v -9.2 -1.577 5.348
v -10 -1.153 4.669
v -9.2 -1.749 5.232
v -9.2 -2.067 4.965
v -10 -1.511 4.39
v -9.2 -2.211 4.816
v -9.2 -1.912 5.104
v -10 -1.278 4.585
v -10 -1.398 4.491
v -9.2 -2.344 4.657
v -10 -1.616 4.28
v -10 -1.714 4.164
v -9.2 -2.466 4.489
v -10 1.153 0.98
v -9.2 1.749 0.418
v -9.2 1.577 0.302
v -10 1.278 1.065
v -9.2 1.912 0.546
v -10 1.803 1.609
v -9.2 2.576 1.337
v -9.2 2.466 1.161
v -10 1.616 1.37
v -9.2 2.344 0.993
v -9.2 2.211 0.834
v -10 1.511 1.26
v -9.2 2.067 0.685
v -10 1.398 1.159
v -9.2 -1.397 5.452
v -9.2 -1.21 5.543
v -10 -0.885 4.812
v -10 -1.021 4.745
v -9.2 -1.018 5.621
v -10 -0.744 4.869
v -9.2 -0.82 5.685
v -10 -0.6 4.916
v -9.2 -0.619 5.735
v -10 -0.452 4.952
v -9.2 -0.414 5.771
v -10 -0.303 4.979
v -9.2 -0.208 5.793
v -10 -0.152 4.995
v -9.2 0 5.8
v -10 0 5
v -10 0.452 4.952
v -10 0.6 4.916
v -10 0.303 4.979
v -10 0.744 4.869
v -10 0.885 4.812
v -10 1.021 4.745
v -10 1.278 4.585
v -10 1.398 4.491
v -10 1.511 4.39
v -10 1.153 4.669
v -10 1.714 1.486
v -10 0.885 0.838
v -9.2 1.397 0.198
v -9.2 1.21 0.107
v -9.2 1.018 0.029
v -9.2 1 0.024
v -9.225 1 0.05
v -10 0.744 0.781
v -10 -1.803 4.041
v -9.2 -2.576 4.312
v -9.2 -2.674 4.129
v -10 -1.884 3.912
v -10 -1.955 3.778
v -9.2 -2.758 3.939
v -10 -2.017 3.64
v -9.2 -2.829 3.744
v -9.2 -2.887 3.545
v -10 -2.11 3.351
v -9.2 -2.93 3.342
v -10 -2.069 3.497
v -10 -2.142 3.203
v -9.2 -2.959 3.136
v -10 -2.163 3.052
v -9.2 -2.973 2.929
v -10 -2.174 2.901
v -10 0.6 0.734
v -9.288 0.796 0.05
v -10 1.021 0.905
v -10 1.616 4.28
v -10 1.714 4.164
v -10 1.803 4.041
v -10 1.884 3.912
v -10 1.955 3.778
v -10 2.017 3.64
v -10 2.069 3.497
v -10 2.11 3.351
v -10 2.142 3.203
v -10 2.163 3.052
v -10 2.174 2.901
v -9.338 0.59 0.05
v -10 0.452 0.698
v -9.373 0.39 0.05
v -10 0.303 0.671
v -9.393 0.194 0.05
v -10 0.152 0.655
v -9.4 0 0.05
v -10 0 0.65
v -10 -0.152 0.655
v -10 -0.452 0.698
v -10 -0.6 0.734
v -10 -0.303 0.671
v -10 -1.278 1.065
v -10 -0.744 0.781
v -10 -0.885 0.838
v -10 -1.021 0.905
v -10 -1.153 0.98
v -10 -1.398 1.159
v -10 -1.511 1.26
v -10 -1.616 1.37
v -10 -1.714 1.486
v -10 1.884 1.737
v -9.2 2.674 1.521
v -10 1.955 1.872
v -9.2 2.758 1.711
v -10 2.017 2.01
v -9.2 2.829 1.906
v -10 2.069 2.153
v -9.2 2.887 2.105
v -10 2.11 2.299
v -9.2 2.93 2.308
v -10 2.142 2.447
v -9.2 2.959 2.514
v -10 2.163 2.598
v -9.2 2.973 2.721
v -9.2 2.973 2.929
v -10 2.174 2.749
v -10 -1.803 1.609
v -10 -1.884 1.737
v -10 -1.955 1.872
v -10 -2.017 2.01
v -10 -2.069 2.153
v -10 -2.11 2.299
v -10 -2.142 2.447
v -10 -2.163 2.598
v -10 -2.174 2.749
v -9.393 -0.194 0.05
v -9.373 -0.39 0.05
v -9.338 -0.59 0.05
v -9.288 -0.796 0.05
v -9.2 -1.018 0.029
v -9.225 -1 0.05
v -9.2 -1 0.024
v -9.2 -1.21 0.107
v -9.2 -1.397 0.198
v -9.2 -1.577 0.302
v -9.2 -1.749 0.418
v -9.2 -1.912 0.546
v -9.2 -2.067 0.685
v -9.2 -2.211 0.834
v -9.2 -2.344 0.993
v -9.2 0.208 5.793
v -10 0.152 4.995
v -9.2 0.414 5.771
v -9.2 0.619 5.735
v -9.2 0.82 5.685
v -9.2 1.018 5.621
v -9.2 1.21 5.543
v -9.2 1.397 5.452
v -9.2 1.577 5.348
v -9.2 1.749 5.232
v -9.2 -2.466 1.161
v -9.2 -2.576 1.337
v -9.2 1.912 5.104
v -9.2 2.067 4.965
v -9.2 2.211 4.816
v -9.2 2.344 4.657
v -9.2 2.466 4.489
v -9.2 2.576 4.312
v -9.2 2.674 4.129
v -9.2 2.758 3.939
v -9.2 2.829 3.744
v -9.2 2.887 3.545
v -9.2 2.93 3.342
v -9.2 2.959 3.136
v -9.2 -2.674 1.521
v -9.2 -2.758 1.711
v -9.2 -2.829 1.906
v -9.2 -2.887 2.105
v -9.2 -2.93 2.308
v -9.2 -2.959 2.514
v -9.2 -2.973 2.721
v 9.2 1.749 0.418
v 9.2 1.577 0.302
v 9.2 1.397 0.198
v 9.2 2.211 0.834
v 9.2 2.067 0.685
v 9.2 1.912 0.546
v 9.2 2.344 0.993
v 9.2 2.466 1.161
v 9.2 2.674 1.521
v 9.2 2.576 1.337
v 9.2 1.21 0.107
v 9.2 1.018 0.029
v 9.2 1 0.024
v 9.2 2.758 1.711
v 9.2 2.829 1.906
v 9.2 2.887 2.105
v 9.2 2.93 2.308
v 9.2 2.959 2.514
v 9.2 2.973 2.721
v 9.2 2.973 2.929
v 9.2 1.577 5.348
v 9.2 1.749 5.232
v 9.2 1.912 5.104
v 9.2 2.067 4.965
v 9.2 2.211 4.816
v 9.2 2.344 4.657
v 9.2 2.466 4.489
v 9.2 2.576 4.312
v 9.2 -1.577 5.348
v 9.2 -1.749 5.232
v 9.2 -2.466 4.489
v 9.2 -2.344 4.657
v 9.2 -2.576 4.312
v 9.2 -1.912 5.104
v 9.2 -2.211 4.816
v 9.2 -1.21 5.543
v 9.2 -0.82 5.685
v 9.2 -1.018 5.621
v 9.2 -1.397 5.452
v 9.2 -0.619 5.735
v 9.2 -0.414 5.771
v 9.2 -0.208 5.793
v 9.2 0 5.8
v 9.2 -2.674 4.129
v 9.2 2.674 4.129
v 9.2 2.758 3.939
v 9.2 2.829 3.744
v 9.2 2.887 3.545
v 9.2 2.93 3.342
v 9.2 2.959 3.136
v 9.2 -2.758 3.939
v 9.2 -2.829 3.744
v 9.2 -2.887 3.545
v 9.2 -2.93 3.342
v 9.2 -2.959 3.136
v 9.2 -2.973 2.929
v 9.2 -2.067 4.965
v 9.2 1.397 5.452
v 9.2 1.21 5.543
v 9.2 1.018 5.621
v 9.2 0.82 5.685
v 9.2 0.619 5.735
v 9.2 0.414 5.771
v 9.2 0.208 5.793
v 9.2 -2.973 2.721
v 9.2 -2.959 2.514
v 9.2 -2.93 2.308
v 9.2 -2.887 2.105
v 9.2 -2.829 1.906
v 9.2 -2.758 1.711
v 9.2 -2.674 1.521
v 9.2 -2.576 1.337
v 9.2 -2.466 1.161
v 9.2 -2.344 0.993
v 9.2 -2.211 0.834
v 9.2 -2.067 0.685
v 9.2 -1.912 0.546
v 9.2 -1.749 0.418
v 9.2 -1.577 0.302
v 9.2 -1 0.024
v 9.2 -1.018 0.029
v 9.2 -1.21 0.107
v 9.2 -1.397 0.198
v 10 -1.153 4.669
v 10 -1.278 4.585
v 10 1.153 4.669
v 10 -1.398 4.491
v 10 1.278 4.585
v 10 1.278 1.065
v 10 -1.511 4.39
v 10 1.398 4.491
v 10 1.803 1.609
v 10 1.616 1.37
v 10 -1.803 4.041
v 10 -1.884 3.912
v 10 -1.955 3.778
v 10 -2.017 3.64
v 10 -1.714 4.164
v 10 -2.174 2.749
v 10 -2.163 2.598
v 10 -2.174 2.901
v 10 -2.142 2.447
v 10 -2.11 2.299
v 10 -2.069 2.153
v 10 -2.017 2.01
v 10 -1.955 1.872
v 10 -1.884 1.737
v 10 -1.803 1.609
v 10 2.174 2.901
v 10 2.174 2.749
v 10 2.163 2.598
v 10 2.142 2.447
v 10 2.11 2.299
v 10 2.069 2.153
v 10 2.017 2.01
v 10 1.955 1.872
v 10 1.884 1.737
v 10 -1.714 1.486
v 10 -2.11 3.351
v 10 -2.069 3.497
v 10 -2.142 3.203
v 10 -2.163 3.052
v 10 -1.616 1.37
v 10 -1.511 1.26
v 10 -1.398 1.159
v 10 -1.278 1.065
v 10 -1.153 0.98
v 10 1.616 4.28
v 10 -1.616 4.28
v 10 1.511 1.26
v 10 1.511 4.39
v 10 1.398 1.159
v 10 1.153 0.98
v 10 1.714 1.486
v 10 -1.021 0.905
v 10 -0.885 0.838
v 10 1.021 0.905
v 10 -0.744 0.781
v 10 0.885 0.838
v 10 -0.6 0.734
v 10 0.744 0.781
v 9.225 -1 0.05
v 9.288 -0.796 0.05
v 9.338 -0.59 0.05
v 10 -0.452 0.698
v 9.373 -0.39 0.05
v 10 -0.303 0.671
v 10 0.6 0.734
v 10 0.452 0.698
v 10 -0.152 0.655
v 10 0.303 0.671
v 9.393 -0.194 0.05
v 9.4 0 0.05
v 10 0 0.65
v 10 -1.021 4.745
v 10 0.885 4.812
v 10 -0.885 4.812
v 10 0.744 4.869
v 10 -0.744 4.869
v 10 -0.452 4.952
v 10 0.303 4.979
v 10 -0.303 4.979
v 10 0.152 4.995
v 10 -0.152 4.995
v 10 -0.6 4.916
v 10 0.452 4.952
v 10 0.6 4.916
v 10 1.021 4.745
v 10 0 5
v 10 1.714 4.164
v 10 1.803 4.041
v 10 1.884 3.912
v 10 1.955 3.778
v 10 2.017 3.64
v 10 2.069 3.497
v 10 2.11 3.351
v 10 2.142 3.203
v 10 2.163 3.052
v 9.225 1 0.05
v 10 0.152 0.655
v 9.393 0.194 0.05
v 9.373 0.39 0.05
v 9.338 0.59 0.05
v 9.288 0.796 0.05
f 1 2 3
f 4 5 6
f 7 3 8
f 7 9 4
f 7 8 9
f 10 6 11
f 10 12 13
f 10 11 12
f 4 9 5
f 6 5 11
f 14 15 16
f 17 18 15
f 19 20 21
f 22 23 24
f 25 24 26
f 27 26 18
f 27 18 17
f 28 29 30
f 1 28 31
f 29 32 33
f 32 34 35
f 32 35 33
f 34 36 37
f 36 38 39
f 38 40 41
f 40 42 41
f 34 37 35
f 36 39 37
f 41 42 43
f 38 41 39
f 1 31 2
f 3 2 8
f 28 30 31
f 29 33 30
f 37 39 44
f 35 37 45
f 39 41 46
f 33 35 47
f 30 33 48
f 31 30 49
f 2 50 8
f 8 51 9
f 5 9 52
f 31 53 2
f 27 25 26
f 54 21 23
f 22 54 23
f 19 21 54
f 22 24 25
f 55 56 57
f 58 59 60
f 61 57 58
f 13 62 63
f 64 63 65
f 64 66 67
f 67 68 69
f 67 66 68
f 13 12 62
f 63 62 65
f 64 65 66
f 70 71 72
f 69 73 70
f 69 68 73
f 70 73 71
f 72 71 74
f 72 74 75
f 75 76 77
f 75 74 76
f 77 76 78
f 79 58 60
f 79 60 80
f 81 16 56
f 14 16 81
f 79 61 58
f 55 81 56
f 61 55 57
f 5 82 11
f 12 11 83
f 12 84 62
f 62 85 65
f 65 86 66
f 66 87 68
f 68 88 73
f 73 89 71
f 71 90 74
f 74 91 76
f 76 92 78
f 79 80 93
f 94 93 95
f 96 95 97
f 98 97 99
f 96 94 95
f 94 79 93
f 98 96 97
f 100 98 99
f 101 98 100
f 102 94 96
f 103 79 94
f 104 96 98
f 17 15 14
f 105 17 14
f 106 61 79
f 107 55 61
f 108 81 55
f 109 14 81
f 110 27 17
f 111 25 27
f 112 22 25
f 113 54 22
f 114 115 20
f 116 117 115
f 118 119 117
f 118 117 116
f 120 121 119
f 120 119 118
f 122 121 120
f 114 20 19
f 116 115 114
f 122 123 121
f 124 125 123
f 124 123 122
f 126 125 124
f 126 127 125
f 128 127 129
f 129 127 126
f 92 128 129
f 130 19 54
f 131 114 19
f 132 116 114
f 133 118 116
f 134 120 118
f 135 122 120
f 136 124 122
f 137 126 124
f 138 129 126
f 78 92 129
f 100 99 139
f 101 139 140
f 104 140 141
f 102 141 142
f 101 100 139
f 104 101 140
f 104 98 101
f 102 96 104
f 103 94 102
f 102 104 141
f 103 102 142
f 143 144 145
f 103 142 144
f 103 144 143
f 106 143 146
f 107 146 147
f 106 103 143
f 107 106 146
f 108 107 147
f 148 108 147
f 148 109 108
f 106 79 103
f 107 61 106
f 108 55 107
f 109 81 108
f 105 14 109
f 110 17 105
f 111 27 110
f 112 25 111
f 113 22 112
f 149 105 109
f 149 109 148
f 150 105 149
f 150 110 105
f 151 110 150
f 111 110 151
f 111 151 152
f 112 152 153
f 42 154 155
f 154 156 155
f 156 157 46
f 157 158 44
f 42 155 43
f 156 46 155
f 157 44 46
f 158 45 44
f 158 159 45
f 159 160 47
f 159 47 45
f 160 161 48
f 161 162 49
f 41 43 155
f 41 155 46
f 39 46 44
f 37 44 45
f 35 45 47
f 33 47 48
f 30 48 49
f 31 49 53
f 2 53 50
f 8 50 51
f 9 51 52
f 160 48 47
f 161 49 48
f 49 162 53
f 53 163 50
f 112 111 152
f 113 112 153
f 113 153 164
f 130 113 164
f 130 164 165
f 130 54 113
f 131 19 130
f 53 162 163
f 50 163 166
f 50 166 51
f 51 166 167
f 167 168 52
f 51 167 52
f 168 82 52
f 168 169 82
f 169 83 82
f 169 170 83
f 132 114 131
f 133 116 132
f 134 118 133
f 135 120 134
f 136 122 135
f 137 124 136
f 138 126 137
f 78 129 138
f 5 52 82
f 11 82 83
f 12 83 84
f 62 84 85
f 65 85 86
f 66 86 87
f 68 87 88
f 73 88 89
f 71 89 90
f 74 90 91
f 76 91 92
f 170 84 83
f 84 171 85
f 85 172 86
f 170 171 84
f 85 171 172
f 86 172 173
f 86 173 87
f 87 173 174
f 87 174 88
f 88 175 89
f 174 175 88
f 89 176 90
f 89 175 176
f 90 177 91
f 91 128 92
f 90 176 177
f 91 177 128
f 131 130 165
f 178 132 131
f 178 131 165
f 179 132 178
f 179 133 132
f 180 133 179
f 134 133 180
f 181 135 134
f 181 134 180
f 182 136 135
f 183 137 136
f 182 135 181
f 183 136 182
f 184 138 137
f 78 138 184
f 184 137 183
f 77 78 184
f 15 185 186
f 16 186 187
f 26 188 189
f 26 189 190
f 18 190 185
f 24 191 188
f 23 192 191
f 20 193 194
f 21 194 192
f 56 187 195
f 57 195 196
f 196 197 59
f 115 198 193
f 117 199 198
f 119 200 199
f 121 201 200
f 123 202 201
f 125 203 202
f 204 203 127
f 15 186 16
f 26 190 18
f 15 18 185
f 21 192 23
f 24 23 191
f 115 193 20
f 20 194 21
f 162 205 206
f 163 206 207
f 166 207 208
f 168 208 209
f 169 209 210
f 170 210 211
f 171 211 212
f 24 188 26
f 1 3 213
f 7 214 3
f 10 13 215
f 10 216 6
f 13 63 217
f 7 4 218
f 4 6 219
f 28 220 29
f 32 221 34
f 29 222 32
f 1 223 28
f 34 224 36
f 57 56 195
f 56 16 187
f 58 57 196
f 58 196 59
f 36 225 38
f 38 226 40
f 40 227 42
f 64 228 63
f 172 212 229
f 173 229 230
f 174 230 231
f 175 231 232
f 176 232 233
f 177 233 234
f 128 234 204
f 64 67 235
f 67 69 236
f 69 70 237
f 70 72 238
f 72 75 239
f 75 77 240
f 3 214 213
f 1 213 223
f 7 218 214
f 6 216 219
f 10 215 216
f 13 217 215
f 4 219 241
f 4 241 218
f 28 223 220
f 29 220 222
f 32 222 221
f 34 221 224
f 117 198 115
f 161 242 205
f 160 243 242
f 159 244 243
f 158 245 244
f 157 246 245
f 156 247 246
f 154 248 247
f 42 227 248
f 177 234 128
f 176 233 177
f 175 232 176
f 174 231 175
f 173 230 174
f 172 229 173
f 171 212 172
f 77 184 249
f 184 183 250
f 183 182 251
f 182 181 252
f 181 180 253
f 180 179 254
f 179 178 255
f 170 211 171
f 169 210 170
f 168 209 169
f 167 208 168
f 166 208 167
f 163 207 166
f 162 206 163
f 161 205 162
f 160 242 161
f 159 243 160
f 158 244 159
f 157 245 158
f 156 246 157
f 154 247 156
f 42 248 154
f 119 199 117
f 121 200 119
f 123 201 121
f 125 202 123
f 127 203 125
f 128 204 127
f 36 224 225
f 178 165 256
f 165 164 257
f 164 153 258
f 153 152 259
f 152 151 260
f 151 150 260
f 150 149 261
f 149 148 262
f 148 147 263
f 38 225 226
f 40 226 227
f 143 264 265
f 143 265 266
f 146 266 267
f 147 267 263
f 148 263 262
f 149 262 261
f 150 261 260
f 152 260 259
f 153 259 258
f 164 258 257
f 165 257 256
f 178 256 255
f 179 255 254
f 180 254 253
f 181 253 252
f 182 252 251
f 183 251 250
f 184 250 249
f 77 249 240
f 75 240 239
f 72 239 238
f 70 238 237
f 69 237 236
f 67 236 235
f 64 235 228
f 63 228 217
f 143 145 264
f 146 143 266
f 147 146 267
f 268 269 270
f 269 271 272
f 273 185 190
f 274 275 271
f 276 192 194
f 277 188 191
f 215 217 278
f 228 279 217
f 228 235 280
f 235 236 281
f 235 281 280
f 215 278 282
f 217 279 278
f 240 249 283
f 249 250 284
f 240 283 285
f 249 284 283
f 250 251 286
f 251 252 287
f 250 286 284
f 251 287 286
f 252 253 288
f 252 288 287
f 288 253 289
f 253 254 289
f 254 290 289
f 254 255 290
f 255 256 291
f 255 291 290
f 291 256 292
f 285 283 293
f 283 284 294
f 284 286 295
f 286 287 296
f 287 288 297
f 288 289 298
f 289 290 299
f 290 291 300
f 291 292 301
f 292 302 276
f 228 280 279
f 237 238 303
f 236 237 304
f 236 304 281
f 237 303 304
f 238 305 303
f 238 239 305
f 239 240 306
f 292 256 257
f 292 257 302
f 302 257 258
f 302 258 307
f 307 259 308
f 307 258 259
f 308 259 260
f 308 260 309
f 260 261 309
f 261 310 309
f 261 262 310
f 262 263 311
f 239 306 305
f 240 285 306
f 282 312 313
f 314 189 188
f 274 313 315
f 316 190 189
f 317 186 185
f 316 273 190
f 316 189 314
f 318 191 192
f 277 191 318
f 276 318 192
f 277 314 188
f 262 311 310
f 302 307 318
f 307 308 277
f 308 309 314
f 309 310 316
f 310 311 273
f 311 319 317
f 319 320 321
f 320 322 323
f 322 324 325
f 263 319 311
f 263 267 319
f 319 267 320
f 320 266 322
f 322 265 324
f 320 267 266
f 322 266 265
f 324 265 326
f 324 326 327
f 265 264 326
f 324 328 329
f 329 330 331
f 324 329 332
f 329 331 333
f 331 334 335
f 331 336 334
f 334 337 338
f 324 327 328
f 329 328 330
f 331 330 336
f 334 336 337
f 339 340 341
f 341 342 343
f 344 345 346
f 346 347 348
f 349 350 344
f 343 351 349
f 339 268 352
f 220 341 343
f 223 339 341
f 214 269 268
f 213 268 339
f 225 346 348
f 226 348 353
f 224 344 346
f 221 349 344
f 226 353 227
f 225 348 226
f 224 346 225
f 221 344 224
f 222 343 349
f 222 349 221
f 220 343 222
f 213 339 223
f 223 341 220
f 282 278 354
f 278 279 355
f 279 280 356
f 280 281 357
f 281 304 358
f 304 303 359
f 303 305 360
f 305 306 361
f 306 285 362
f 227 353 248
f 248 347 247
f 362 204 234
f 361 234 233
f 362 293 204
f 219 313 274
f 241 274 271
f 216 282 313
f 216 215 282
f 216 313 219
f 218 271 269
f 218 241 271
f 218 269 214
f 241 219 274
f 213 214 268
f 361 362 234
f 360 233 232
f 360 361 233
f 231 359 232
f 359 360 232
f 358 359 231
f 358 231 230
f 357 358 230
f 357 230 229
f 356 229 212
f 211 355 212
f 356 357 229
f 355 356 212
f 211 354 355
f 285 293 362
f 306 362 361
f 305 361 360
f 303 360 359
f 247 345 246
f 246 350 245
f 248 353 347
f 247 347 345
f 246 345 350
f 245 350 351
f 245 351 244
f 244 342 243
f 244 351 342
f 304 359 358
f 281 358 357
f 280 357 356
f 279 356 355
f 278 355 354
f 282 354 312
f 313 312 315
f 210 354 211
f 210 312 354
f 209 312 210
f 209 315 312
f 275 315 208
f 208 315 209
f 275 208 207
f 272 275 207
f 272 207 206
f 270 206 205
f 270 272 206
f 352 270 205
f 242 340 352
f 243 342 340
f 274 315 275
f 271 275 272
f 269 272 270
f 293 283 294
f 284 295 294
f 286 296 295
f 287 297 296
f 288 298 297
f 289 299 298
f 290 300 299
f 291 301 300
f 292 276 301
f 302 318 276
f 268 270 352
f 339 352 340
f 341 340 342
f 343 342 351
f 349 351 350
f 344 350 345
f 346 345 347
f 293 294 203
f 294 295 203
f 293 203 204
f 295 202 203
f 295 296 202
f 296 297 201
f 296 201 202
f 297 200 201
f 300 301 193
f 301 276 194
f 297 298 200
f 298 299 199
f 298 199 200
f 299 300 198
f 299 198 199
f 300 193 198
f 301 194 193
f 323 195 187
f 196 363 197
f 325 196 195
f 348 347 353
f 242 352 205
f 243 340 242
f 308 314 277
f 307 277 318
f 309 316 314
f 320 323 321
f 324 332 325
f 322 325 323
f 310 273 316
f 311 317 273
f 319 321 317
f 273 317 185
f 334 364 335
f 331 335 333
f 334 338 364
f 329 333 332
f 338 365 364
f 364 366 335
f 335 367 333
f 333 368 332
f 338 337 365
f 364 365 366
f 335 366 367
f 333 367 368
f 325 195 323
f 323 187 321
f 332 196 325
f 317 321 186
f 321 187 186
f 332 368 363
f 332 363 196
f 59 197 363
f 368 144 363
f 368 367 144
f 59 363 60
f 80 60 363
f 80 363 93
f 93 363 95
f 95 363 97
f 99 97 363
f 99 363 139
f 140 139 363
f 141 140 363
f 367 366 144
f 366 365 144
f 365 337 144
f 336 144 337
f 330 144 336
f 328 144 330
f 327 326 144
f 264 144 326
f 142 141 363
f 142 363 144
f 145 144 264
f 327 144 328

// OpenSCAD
// ============================================================================
// UR5 FLANGE ALIGNMENT DOWEL PIN (ISO 9409-1-50 — Ø 6.0 x 20.0 MM)
// Units: millimeters (mm) — Print horizontally (flat on side) for shear strength
// ============================================================================

$fn = 90;

pin_d       = 5.95;  // Nominal Ø 6.0 mm with 0.05 mm radial print clearance
pin_length  = 20.0;  // Extended length for full stack (Adaptor -> Part 1 -> Coupling)
chamfer     = 0.8;   // Lead-in end chamfers

module ur5_alignment_pin(len = pin_length, d = pin_d) {
    // Rotate horizontally so layer lines run along the pin length (prevents shearing)
    translate([-len / 2, 0, d / 2 - 0.15])
        rotate([0, 90, 0])
            difference() {
                union() {
                    cylinder(d1 = d - 2 * chamfer, d2 = d, h = chamfer);
                    translate([0, 0, chamfer])
                        cylinder(d = d, h = len - 2 * chamfer);
                    translate([0, 0, len - chamfer])
                        cylinder(d1 = d, d2 = d - 2 * chamfer, h = chamfer);
                }
                // Tiny flat air-relief channel along side for easy insertion
                translate([d / 2 - 0.2, -1.0, -1])
                    cube([1.0, 2.0, len + 2]);
            }
}

ur5_alignment_pin(pin_length, pin_d);
